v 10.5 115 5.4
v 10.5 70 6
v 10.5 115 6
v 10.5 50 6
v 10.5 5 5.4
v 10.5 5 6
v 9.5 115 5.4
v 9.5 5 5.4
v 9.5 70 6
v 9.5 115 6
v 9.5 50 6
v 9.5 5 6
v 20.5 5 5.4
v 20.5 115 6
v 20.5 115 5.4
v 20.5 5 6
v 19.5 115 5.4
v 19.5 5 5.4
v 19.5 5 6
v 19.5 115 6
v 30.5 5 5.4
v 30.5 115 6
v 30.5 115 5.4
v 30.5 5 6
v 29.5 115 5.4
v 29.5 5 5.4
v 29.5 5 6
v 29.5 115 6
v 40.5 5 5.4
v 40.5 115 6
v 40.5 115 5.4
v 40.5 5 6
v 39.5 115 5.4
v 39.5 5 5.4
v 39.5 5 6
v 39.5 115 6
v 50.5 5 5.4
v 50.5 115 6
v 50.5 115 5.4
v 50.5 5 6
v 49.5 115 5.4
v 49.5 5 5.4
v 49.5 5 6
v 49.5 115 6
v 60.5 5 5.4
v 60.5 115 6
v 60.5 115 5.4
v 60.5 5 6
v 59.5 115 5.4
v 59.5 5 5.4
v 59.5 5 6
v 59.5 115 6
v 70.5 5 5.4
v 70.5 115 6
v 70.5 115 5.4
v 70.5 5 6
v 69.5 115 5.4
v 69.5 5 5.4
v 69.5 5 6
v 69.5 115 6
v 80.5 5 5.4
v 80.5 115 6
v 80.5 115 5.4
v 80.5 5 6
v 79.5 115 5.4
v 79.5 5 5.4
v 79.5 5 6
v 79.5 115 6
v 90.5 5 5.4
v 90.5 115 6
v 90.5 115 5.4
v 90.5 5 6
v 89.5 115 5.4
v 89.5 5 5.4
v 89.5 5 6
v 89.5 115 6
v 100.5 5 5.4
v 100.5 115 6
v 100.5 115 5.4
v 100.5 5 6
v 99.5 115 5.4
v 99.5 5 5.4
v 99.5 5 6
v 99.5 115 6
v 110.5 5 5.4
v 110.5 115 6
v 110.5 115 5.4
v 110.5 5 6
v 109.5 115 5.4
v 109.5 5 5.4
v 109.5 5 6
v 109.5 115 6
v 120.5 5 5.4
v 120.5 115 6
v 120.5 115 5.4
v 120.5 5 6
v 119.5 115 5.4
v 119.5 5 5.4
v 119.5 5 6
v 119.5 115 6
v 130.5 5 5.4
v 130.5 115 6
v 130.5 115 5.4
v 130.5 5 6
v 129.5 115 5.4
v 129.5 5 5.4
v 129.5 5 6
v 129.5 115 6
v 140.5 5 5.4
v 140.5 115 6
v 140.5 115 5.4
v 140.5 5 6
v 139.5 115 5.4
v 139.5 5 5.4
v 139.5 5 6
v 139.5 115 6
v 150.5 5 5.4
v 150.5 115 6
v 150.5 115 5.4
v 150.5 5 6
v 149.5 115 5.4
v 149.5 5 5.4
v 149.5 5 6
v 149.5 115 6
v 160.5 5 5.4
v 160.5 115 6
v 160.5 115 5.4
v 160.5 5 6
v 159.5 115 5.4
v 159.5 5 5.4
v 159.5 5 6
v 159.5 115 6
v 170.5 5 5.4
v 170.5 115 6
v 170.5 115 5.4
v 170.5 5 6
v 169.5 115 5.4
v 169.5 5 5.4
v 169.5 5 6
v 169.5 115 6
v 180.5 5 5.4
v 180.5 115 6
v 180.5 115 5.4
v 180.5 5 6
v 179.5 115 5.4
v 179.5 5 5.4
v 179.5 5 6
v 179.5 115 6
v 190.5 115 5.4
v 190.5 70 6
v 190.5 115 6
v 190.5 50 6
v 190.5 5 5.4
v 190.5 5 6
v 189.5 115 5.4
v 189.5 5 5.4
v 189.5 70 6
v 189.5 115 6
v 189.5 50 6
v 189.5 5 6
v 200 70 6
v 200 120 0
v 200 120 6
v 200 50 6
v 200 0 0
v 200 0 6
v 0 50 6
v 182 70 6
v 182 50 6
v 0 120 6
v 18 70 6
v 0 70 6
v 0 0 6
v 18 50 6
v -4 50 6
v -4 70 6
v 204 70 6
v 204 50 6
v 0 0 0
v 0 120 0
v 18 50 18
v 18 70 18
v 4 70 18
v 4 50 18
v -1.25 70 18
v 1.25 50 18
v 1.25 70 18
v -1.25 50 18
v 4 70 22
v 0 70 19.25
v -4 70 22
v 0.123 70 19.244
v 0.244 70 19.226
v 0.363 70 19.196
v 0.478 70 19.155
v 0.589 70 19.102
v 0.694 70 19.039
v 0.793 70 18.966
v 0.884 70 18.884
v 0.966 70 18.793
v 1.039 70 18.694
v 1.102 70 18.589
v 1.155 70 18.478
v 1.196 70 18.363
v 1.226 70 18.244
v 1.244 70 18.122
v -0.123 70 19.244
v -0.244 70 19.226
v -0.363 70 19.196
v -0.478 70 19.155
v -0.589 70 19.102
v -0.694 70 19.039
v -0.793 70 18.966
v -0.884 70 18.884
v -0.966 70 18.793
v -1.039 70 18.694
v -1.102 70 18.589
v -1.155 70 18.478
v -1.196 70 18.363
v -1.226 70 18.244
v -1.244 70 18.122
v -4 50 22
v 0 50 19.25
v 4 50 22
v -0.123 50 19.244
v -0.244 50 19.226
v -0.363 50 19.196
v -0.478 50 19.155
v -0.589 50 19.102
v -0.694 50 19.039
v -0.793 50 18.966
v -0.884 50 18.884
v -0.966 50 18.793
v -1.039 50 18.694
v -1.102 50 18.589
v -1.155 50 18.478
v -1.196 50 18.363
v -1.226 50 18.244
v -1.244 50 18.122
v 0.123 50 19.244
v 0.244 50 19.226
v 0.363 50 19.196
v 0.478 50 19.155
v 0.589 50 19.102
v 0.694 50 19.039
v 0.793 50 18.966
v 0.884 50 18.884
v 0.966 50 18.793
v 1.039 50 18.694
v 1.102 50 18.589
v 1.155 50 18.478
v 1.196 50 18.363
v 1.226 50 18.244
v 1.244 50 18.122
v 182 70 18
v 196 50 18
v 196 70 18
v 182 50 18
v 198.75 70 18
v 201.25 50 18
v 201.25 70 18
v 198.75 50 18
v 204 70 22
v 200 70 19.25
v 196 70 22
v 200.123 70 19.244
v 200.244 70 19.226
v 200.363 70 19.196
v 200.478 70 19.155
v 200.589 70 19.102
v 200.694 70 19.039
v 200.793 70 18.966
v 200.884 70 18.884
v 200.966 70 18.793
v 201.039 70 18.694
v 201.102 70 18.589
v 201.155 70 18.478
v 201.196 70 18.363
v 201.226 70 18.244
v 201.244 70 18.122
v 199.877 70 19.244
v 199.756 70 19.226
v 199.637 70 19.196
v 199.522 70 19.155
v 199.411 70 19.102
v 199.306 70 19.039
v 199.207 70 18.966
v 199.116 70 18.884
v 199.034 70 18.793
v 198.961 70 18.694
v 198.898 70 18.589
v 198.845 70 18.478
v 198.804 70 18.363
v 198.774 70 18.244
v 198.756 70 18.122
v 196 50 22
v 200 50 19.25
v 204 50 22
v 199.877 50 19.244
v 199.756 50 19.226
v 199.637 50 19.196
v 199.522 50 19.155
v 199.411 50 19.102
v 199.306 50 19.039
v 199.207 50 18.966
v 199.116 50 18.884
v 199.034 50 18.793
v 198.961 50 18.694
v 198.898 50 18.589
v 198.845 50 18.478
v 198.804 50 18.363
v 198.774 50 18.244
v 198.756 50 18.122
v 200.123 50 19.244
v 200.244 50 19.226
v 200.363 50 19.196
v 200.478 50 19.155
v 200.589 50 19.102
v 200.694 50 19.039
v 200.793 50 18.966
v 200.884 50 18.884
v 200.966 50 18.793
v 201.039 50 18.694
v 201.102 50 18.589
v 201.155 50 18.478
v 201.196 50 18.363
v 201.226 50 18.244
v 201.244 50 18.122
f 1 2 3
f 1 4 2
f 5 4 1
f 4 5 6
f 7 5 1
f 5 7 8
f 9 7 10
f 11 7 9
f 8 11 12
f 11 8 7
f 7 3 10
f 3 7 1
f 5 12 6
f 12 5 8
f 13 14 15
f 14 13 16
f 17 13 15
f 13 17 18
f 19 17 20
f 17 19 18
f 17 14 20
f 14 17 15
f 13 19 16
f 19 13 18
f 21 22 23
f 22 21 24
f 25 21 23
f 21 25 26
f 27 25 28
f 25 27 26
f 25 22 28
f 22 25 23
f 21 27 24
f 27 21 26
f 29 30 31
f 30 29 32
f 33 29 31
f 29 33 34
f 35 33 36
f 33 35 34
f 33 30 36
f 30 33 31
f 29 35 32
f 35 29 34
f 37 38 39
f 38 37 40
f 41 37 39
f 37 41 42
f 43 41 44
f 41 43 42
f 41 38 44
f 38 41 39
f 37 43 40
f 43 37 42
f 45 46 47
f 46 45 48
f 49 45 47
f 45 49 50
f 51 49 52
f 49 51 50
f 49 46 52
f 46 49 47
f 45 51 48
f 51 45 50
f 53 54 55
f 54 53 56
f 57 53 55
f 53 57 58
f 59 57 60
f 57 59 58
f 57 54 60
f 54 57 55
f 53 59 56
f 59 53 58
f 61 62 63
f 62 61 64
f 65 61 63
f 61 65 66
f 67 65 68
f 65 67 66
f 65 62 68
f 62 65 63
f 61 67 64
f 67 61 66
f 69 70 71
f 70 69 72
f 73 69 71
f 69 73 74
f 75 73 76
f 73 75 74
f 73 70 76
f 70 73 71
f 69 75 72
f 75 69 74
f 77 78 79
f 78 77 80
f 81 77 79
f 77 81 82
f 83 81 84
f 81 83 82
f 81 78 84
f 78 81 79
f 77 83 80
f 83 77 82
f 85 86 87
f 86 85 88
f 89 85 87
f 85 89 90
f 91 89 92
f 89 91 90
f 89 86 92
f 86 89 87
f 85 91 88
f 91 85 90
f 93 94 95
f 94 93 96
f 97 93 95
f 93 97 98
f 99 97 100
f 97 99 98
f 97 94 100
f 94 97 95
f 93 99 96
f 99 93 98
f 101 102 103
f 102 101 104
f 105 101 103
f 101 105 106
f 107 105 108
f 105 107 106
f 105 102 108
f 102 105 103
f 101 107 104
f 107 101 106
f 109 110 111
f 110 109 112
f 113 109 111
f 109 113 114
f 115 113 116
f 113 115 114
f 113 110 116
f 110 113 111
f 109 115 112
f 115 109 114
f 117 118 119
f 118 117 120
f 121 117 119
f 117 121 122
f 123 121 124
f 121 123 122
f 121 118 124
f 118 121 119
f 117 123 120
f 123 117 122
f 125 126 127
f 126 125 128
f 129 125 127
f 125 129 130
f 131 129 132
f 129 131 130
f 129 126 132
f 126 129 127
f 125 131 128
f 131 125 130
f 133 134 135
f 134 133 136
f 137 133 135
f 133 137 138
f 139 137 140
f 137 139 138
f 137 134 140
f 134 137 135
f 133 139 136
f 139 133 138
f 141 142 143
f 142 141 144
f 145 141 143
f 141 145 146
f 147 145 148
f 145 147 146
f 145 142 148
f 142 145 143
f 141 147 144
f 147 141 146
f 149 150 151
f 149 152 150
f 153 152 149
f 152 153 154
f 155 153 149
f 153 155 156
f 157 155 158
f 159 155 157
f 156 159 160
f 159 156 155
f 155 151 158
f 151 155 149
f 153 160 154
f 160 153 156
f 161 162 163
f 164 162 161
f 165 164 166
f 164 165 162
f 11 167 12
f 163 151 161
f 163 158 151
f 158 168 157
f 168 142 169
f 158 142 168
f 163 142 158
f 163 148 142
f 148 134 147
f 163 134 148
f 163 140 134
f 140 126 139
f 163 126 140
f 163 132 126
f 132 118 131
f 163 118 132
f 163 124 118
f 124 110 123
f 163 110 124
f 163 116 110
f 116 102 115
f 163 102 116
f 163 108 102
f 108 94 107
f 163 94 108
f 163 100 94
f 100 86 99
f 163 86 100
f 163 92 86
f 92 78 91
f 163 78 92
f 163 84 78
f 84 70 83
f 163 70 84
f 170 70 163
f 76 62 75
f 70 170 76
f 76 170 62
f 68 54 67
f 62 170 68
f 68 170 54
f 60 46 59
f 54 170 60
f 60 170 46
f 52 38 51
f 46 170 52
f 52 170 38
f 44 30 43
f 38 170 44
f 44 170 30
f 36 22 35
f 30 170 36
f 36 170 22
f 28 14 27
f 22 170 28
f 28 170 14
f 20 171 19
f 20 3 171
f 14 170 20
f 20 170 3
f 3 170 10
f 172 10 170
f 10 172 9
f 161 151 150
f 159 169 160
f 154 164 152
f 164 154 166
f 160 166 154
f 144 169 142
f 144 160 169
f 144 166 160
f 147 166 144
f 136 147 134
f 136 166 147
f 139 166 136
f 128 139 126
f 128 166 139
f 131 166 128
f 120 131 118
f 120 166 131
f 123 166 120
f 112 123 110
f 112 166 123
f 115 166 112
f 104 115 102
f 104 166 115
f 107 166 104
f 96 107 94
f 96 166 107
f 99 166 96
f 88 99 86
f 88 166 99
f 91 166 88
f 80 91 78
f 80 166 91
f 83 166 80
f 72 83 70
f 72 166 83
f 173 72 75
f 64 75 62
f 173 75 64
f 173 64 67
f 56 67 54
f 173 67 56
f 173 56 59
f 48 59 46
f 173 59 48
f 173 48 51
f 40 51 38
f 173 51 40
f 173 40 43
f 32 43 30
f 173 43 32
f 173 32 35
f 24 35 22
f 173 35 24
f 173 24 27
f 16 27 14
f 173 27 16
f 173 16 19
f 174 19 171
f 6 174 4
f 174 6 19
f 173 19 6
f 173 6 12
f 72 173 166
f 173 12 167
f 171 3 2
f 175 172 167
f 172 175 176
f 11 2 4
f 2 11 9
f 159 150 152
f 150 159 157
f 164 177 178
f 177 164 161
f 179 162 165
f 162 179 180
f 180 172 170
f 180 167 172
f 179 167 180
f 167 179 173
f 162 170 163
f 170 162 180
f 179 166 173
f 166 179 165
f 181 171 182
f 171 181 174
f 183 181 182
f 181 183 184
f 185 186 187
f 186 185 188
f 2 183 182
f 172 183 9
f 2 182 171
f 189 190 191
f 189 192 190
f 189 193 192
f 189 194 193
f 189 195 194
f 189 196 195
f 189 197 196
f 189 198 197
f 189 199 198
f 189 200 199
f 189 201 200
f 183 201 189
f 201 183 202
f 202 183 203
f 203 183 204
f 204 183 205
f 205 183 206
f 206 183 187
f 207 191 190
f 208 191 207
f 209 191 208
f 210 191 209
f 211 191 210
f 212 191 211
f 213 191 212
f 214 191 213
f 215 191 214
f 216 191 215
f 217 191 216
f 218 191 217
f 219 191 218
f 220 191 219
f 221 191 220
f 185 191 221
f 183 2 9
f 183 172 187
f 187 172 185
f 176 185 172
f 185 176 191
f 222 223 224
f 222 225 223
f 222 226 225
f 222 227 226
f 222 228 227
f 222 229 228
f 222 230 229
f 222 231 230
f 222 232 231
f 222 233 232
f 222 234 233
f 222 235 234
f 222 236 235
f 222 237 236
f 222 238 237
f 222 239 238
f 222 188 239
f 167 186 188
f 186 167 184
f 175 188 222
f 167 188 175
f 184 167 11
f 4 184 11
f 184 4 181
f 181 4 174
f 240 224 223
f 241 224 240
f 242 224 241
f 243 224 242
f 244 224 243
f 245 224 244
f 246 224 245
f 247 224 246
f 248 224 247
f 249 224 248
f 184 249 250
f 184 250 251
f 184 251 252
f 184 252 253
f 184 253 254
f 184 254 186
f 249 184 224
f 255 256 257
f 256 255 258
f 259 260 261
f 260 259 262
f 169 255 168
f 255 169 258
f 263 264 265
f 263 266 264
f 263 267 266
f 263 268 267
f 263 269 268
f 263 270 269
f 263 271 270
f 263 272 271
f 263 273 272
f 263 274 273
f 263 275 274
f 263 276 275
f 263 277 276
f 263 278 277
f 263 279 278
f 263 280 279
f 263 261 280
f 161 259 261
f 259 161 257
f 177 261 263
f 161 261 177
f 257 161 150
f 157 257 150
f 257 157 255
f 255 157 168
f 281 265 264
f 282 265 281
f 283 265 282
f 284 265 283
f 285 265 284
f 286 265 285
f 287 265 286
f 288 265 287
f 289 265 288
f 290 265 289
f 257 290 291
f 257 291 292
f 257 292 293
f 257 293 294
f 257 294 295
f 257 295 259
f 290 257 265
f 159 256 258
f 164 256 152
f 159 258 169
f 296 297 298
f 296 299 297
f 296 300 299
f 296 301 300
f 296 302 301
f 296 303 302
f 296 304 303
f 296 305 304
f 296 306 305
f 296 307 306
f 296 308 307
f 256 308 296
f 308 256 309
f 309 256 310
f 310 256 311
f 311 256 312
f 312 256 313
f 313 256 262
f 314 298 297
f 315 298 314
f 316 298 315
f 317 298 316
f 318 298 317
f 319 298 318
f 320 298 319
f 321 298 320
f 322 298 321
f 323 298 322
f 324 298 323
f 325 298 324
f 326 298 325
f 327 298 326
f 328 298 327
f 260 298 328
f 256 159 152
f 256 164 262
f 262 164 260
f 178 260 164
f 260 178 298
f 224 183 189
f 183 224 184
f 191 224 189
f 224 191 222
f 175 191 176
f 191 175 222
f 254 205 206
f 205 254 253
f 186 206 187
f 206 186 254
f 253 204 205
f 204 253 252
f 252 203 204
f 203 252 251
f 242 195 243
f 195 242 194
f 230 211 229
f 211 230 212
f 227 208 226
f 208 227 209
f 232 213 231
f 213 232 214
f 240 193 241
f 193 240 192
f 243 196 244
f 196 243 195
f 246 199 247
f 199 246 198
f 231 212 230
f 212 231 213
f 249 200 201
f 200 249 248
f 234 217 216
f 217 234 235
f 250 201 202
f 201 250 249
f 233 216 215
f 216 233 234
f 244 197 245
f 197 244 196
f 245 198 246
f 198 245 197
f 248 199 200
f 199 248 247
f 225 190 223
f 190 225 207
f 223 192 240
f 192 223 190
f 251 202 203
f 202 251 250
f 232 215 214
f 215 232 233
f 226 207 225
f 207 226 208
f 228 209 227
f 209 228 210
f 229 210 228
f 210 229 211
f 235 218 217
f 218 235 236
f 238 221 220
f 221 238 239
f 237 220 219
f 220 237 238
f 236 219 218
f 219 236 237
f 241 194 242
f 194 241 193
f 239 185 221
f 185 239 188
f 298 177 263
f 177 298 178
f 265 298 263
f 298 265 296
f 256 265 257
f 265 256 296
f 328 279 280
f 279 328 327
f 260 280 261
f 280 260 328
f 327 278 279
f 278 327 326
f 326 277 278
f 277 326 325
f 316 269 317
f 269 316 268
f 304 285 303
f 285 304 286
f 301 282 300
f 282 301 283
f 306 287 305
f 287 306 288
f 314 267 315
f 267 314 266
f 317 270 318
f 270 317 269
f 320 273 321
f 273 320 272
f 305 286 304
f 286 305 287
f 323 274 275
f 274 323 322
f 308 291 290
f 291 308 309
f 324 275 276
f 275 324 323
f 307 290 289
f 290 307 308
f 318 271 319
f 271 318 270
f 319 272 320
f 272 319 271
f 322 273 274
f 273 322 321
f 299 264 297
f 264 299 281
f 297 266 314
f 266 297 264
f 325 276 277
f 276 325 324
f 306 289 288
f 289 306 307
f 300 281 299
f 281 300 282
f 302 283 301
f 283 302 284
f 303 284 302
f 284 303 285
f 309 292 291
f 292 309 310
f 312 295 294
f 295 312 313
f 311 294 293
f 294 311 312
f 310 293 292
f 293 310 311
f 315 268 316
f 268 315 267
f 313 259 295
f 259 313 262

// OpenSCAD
// file: 00_common.scad
// vertical-lift-bridge :: COMMON PARAMETERS
// All dimensions in millimetres. Imported by every part file.
// Ratified parameters from audit Q1–Q7. Do not edit without group approval.

// ==== BUILD VOLUME ====
PRINTER_X = 220;
PRINTER_Y = 220;
PRINTER_Z = 250;
$fn = 64;  // smoothness for production prints

// ==== OVERALL FOOTPRINT ====
FOOTPRINT_X = 1200;        // along the road / cable axis
FOOTPRINT_Y = 600;         // across the river
BASE_T      = 6;           // base panel thickness
WATERWAY_W  = 200;         // navigable channel width

// ==== TOWERS ====
TOWER_H        = 350;       // total height (split-printed in 2 sections)
TOWER_SPLIT    = 175;       // join height
TOWER_W        = 90;        // width
TOWER_D        = 60;        // depth
TOWER_WALL     = 4;         // wall thickness
TOWER_INNER_W  = TOWER_W - 2*TOWER_WALL;
TOWER_INNER_D  = TOWER_D - 2*TOWER_WALL;
TOWER_SPACING  = 800;       // tower-to-tower centre distance

// ==== DECK ====
DECK_L  = 200;              // along the road
DECK_W  = 120;              // across the road
DECK_T  = 6;                // thickness
DECK_LIFT = 180;            // vertical travel

// ==== COUNTERWEIGHT ====
CW_L  = 60;
CW_W  = 40;
CW_H  = 60;
CW_WALL = 3;
CW_NUT_POCKET_D = 14;       // M8 nut across-flats + clearance
CW_NUT_POCKET_H = 8;

// ==== PULLEY ====
PULLEY_D       = 50;
PULLEY_BORE    = 6.2;       // 6 mm shaft + 0.2 clearance
PULLEY_W       = 20;
PULLEY_GROOVE_D = 1.4;      // 1 mm cable + 0.4 clearance
PULLEY_HUB_D   = 12;
PULLEY_HUB_H   = 8;

// ==== MOTOR ====
MOTOR_BODY_D   = 25;        // JGA25-370 body
MOTOR_BODY_L   = 32;
MOTOR_GEARBOX_L = 19;
MOTOR_SHAFT_D  = 6.2;       // 6 mm shaft + 0.2 clearance
MOTOR_FLAT_W   = 5.5;
MOTOR_MOUNT_W  = 35;
MOTOR_MOUNT_T  = 5;
MOTOR_MOUNT_HOLE_D = 3.2;   // M3 clearance

// ==== CABLE GUIDE ====
CABLE_GUIDE_W = 40;
CABLE_GUIDE_D = 30;
CABLE_GUIDE_H = 25;
CABLE_GUIDE_GROOVE_R = 0.7; // half of 1.4 cable channel

// ==== ROAD BARRIER ====
BARRIER_L = 80;
BARRIER_W = 15;
BARRIER_T = 8;
BARRIER_SERVO_HORN_D = 6;

// ==== PCB ENCLOSURE ====
PCB_X = 100;
PCB_Y = 80;
PCB_T = 1.6;
ENC_WALL = 2.5;
ENC_GAP  = 0.3;
ENC_PCB_STANDOFF_H = 5;
ENC_LID_H = 8;
ENC_BASE_H = PCB_T + ENC_PCB_STANDOFF_H + 8;
ENC_OUTER_X = PCB_X + 2*(ENC_WALL + ENC_GAP);
ENC_OUTER_Y = PCB_Y + 2*(ENC_WALL + ENC_GAP);

// ==== CAMERA MOUNT (ESP32-CAM AI-Thinker) ====
CAM_BOARD_X = 40.5;
CAM_BOARD_Y = 27;
CAM_BOARD_T = 1.6;
CAM_LENS_D  = 9.5;
CAM_GANTRY_H = 220;          // height above road for FOV
CAM_TILT_DEG = 25;

// ==== TFT DISPLAY MOUNT ====
// 2.8" ILI9341 with XPT2046 — common module 86×56×4 mm with 8 mm header on one side
TFT_BOARD_X = 86;
TFT_BOARD_Y = 56;
TFT_BOARD_T = 4;
TFT_VISIBLE_X = 58;          // active area
TFT_VISIBLE_Y = 44;
TFT_TILT_DEG = 35;           // Q5 ratified — 35° tilt
TFT_BEZEL = 5;
TFT_BACK_DEPTH = 18;         // header height behind board

// ==== HARDWARE ====
M3_CLEAR  = 3.2;
M3_TAP    = 2.8;
M3_HEAD_D = 6.0;
M3_HEAD_H = 3.0;
M3_INSERT_D = 4.2;           // brass heat-set insert OD
M3_INSERT_H = 5.0;
M8_BOLT_D = 8.4;
// main file
// 03_bridge_deck_section.scad — bridge deck, monolithic
// Fits 220×220 print bed at 200×120; printed flat with 30 % gyroid infill.
include <00_common.scad>

module deck() {
    difference() {
        // base plate
        cube([DECK_L, DECK_W, DECK_T]);

        // road surface texture: 20 grooves running across the road
        for (i = [1:1:19])
            translate([i * (DECK_L/20) - 0.5, 5, DECK_T - 0.6])
                cube([1, DECK_W - 10, 0.7]);
    }

    // linear-guide blocks at each end (run inside tower side rails)
    for (x = [-2, DECK_L - 18]) {
        translate([x, DECK_W/2 - 10, DECK_T])
            cube([20, 20, 12]);
    }

    // cable attachment ears (centre of each end)
    for (x = [-4, DECK_L - 4])
        translate([x, DECK_W/2 - 10, DECK_T])
            difference() {
                cube([8, 20, 16]);
                translate([4, 10, 12])
                    rotate([90,0,0])
                        cylinder(d=2.5, h=22, center=true);
            }
}

deck();
